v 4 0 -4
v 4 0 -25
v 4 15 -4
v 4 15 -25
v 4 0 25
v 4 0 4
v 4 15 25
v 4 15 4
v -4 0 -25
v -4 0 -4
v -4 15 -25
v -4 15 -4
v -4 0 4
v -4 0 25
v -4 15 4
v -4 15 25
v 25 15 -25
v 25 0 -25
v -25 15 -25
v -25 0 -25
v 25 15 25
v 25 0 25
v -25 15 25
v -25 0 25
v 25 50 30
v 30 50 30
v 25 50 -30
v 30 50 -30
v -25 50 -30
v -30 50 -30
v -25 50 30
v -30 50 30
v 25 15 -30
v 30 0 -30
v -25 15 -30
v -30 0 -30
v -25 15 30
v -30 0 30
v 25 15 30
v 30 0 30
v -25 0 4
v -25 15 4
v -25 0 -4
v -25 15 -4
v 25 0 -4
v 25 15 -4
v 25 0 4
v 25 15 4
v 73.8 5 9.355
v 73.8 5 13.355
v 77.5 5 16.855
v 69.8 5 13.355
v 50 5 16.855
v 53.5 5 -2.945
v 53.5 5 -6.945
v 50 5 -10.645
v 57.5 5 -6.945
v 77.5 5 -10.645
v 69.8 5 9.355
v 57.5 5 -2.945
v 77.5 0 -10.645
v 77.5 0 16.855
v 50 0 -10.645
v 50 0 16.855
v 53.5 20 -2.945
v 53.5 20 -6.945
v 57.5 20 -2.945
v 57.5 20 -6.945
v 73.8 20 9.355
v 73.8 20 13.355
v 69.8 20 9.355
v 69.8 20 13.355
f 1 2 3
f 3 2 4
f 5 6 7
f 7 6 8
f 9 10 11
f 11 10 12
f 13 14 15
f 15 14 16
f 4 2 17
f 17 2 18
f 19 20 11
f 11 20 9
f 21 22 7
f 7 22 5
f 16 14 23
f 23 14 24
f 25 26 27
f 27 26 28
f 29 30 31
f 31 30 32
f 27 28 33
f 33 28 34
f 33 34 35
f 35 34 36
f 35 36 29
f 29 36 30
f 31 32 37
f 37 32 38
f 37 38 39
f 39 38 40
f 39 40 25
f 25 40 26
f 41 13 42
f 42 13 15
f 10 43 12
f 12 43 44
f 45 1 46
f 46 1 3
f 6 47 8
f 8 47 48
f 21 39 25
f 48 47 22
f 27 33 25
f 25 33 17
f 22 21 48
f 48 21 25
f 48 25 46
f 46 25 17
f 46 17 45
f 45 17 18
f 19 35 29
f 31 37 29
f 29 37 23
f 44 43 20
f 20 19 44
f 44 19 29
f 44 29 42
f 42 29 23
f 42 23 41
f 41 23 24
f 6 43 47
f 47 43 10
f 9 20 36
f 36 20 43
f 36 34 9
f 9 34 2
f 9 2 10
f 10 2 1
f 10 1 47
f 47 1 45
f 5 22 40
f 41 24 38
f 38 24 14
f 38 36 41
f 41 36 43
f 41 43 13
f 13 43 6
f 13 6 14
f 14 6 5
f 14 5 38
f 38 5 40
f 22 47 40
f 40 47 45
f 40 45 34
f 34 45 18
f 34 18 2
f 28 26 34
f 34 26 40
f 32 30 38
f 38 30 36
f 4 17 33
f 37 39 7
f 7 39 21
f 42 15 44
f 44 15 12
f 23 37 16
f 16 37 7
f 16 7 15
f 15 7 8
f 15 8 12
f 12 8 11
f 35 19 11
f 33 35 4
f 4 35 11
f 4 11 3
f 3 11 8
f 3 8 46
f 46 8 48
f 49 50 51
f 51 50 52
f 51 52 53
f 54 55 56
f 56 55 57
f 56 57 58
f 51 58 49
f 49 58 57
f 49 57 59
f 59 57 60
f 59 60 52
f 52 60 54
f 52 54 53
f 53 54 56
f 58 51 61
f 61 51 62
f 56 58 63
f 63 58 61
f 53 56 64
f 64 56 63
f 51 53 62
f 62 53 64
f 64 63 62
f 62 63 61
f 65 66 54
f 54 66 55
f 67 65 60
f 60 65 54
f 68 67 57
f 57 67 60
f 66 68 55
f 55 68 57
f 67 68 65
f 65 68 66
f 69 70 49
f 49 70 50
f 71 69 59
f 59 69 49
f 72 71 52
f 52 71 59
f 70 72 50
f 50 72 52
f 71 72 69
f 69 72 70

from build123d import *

# Parameters (mm, degrees)
SKETCH1_W               = 60
SKETCH1_H               = 60
BOSS_EXTRUDE1_DEPTH     = 50
SKETCH2_W               = 50
SKETCH2_H               = 50
CUT_EXTRUDE1_DEPTH      = 50
SKETCH3_W               = 8
SKETCH3_H               = 56.785207986
BOSS_EXTRUDE2_DEPTH     = 50
SKETCH5_W               = 56.41599337
SKETCH5_H               = 8
BOSS_EXTRUDE3_DEPTH     = 50
SKETCH6_W               = 50
SKETCH6_H               = 35
CUT_EXTRUDE2_DEPTH      = 30
CUT_EXTRUDE2_DEPTH_BACK = 30
SKETCH7_W               = 27.5
SKETCH7_H               = 27.5
BOSS_EXTRUDE4_DEPTH     = 5
SKETCH9_W               = 4
SKETCH9_H               = 4
BOSS_EXTRUDE5_DEPTH     = 20
SKETCH10_W              = 4
SKETCH10_H              = 4
BOSS_EXTRUDE6_DEPTH     = 20


with BuildPart() as part:
    # Sketch1 → Boss-Extrude1 (new body)
    with BuildSketch(Plane(origin=(0, 0, 0), x_dir=(1, 0, 0), z_dir=(0, 1, 0))):
        Rectangle(SKETCH1_W, SKETCH1_H)
    extrude(amount=BOSS_EXTRUDE1_DEPTH)

    # Sketch2 → Cut-Extrude1 (cut)
    with BuildSketch(Plane(origin=(0, 0, 0), x_dir=(1, 0, 0), z_dir=(0, 1, 0))):
        Rectangle(SKETCH2_W, SKETCH2_H)
    extrude(amount=CUT_EXTRUDE1_DEPTH, mode=Mode.SUBTRACT)

    # Sketch3 → Boss-Extrude2 (add)
    with BuildSketch(Plane(origin=(0, 0, 0), x_dir=(1, 0, 0), z_dir=(0, 1, 0))):
        Rectangle(SKETCH3_W, SKETCH3_H)
    extrude(amount=BOSS_EXTRUDE2_DEPTH)

    # Sketch5 → Boss-Extrude3 (add)
    with BuildSketch(Plane(origin=(0, 0, 0), x_dir=(1, 0, 0), z_dir=(0, 1, 0))):
        Rectangle(SKETCH5_W, SKETCH5_H)
    extrude(amount=BOSS_EXTRUDE3_DEPTH)

    # Sketch6 → Cut-Extrude2 (cut, two sides)
    with BuildSketch(Plane.XY) as cut_extrude2_sk:
        with Locations((0, 32.5)):
            Rectangle(SKETCH6_W, SKETCH6_H)
    extrude(amount=CUT_EXTRUDE2_DEPTH, mode=Mode.SUBTRACT)
    extrude(cut_extrude2_sk.sketch, amount=-CUT_EXTRUDE2_DEPTH_BACK, mode=Mode.SUBTRACT)


with BuildPart() as body_2:
    # Sketch7 → Boss-Extrude4 (new body)
    with BuildSketch(Plane(origin=(0, 0, 0), x_dir=(1, 0, 0), z_dir=(0, 1, 0))):
        with Locations((63.75, -3.104551975)):
            Rectangle(SKETCH7_W, SKETCH7_H)
    extrude(amount=BOSS_EXTRUDE4_DEPTH)

    # Sketch9 → Boss-Extrude5 (add)
    with BuildSketch(Plane(origin=(0, 0, 0), x_dir=(1, 0, 0), z_dir=(0, 1, 0))):
        with Locations((55.5, 4.945448025)):
            Rectangle(SKETCH9_W, SKETCH9_H)
    extrude(amount=BOSS_EXTRUDE5_DEPTH)

    # Sketch10 → Boss-Extrude6 (add)
    with BuildSketch(Plane(origin=(0, 0, 0), x_dir=(1, 0, 0), z_dir=(0, 1, 0))):
        with Locations((71.8, -11.354551975)):
            Rectangle(SKETCH10_W, SKETCH10_H)
    extrude(amount=BOSS_EXTRUDE6_DEPTH)


solid = Compound([part.part, body_2.part])
